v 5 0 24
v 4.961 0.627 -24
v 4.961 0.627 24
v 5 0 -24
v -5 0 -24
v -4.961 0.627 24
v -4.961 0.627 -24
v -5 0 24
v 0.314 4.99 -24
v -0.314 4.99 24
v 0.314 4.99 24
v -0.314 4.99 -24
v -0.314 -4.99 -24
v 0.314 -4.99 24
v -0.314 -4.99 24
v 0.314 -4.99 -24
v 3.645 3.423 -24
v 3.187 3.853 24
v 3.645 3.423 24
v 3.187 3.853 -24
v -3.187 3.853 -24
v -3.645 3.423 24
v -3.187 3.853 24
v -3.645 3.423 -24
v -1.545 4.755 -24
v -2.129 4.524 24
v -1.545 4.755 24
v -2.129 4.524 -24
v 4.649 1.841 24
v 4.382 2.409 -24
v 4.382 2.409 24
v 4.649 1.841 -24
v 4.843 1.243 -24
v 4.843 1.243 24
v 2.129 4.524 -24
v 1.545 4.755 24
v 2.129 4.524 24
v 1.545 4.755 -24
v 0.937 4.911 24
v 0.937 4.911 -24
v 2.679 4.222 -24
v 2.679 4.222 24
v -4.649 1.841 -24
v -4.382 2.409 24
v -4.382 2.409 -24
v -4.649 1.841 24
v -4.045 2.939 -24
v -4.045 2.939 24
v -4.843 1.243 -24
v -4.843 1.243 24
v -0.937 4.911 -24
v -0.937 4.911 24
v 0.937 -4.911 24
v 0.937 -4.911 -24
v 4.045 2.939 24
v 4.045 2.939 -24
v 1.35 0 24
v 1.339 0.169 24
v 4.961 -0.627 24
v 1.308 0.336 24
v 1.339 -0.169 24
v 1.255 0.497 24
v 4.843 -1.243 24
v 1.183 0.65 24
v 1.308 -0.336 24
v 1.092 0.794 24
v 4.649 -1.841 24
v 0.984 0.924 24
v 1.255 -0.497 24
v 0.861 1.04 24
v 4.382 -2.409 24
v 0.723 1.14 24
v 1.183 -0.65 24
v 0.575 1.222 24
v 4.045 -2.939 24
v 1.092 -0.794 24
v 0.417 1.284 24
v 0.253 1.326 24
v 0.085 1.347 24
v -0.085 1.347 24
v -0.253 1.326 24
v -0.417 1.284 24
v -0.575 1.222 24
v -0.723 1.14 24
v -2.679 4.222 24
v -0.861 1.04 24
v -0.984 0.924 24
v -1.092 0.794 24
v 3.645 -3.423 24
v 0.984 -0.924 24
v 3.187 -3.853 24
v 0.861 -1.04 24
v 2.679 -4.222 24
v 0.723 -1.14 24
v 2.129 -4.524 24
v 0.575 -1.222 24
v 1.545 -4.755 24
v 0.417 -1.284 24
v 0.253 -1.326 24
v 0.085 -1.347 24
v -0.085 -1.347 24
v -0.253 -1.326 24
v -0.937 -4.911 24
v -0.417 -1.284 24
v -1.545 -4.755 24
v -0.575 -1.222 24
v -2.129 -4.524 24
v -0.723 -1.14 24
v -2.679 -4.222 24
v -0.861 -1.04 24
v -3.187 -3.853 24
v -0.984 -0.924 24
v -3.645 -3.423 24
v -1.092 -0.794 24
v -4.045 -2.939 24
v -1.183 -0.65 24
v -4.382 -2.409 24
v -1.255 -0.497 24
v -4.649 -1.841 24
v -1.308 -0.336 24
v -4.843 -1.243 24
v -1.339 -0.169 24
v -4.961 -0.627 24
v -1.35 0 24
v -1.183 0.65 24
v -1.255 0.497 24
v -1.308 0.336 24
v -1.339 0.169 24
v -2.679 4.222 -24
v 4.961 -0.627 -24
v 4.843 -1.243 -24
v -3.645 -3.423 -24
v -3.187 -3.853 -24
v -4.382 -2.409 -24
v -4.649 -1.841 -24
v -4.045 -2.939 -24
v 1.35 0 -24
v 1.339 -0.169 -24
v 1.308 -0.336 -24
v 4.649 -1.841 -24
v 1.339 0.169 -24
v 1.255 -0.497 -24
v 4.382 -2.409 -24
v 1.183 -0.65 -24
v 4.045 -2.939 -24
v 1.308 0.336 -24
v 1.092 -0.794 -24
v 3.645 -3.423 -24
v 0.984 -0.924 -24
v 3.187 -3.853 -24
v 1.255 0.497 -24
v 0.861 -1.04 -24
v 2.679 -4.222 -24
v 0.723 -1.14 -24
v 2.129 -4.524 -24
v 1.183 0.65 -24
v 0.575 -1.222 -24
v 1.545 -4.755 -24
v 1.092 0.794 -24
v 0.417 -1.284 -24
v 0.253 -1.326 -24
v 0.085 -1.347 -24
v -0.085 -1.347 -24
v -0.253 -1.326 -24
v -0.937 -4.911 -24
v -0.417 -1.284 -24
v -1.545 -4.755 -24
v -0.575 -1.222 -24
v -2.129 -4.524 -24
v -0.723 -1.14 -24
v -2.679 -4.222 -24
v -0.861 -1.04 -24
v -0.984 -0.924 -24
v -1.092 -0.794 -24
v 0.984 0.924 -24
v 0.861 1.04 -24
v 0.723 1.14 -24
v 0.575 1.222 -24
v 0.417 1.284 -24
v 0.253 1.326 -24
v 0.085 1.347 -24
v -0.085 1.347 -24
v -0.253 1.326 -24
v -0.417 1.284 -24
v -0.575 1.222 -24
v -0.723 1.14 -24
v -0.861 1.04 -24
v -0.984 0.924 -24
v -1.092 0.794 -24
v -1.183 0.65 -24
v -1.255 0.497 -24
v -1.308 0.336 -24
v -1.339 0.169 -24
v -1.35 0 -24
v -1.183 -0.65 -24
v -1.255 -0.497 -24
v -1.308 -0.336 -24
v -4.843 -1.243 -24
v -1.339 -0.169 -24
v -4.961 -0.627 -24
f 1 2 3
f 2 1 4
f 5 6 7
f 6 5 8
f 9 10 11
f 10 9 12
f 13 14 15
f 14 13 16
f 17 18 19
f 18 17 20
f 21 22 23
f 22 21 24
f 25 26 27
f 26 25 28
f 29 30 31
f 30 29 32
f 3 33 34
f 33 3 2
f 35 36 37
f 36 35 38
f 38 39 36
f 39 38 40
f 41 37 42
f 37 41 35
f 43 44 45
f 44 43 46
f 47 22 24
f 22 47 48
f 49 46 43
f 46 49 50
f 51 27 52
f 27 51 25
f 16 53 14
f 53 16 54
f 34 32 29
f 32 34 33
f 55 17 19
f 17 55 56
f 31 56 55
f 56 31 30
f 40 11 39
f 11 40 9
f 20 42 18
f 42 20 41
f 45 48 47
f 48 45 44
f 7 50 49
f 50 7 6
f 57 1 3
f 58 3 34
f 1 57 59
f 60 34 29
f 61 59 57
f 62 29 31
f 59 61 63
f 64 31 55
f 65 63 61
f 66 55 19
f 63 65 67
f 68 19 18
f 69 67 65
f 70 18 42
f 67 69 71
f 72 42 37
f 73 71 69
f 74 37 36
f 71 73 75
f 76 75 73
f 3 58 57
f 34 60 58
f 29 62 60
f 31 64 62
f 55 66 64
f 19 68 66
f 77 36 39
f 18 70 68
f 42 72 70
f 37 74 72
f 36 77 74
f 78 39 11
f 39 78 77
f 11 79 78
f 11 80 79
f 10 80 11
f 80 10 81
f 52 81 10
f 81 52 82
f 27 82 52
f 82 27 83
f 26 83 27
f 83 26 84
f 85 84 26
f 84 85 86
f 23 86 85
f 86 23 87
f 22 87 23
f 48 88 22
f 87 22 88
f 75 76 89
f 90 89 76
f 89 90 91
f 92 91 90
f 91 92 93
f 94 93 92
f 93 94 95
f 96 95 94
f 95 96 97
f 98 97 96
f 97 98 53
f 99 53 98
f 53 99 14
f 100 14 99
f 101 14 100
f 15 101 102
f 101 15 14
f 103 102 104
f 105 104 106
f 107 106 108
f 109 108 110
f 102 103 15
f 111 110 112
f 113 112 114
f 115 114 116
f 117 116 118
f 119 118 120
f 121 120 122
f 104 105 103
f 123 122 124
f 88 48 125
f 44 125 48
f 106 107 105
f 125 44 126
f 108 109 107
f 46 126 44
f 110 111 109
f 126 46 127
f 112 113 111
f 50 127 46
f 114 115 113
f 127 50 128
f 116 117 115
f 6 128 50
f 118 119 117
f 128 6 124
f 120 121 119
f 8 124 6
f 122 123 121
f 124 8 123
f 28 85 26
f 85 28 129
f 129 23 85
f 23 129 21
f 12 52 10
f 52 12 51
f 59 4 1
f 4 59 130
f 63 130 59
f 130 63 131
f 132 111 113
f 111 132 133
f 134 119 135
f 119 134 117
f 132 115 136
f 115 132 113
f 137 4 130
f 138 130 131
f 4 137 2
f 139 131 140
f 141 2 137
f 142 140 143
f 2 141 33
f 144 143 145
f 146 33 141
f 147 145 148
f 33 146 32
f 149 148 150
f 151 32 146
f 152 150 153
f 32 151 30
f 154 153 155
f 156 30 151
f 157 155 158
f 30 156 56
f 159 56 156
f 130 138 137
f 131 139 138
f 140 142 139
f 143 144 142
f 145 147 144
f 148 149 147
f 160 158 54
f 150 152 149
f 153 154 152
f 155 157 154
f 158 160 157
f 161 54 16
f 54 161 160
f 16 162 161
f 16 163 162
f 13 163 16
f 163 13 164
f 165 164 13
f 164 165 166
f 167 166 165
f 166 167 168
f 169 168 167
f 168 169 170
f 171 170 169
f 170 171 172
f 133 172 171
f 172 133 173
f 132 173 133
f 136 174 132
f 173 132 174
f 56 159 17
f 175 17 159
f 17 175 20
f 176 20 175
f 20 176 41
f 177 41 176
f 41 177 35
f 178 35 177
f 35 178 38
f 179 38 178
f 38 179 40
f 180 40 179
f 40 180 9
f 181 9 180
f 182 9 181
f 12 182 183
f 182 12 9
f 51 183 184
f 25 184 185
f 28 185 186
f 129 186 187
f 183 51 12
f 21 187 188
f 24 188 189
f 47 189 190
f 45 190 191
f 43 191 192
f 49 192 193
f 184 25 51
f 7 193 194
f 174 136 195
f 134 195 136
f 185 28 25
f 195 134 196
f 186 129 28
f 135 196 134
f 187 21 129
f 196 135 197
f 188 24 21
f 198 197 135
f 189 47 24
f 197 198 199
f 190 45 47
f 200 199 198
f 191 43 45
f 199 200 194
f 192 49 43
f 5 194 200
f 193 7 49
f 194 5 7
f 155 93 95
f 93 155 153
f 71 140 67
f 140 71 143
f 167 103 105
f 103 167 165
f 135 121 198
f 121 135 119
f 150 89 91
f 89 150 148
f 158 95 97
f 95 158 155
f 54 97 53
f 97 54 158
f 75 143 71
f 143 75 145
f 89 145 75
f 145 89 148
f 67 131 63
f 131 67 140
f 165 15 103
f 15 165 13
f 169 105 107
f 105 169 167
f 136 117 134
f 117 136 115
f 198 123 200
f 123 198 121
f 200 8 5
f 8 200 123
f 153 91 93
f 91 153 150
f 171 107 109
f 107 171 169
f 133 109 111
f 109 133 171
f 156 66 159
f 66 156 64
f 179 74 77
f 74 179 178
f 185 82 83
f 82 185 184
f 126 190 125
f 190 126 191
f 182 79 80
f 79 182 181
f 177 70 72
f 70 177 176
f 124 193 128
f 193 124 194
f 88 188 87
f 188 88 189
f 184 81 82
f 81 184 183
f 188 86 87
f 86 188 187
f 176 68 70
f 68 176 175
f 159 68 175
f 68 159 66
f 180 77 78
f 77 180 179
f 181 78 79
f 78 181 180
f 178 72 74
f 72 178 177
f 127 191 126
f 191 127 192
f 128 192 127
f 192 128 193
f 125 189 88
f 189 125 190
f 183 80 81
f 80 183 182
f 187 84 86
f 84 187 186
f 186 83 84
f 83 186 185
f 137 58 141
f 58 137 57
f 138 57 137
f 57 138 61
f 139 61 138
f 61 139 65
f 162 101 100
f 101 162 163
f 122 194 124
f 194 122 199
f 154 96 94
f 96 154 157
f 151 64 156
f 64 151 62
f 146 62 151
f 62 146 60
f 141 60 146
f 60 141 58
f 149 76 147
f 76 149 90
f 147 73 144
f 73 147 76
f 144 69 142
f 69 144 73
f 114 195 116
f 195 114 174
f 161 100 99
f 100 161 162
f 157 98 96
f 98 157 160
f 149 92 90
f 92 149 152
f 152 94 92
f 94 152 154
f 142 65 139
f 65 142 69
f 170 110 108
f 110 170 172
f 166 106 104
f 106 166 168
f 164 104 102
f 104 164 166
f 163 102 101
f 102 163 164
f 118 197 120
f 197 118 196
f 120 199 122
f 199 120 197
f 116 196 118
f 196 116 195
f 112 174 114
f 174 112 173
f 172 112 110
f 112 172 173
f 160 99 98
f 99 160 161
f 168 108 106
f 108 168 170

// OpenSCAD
$fn = 50;


difference() {
	union() {
		translate(v = [0, 0, -24.0000000000]) {
			cylinder(h = 48, r = 5.0000000000);
		}
	}
	union() {
		translate(v = [0, 0, -100.0000000000]) {
			cylinder(h = 200, r = 1.3500000000);
		}
	}
}
